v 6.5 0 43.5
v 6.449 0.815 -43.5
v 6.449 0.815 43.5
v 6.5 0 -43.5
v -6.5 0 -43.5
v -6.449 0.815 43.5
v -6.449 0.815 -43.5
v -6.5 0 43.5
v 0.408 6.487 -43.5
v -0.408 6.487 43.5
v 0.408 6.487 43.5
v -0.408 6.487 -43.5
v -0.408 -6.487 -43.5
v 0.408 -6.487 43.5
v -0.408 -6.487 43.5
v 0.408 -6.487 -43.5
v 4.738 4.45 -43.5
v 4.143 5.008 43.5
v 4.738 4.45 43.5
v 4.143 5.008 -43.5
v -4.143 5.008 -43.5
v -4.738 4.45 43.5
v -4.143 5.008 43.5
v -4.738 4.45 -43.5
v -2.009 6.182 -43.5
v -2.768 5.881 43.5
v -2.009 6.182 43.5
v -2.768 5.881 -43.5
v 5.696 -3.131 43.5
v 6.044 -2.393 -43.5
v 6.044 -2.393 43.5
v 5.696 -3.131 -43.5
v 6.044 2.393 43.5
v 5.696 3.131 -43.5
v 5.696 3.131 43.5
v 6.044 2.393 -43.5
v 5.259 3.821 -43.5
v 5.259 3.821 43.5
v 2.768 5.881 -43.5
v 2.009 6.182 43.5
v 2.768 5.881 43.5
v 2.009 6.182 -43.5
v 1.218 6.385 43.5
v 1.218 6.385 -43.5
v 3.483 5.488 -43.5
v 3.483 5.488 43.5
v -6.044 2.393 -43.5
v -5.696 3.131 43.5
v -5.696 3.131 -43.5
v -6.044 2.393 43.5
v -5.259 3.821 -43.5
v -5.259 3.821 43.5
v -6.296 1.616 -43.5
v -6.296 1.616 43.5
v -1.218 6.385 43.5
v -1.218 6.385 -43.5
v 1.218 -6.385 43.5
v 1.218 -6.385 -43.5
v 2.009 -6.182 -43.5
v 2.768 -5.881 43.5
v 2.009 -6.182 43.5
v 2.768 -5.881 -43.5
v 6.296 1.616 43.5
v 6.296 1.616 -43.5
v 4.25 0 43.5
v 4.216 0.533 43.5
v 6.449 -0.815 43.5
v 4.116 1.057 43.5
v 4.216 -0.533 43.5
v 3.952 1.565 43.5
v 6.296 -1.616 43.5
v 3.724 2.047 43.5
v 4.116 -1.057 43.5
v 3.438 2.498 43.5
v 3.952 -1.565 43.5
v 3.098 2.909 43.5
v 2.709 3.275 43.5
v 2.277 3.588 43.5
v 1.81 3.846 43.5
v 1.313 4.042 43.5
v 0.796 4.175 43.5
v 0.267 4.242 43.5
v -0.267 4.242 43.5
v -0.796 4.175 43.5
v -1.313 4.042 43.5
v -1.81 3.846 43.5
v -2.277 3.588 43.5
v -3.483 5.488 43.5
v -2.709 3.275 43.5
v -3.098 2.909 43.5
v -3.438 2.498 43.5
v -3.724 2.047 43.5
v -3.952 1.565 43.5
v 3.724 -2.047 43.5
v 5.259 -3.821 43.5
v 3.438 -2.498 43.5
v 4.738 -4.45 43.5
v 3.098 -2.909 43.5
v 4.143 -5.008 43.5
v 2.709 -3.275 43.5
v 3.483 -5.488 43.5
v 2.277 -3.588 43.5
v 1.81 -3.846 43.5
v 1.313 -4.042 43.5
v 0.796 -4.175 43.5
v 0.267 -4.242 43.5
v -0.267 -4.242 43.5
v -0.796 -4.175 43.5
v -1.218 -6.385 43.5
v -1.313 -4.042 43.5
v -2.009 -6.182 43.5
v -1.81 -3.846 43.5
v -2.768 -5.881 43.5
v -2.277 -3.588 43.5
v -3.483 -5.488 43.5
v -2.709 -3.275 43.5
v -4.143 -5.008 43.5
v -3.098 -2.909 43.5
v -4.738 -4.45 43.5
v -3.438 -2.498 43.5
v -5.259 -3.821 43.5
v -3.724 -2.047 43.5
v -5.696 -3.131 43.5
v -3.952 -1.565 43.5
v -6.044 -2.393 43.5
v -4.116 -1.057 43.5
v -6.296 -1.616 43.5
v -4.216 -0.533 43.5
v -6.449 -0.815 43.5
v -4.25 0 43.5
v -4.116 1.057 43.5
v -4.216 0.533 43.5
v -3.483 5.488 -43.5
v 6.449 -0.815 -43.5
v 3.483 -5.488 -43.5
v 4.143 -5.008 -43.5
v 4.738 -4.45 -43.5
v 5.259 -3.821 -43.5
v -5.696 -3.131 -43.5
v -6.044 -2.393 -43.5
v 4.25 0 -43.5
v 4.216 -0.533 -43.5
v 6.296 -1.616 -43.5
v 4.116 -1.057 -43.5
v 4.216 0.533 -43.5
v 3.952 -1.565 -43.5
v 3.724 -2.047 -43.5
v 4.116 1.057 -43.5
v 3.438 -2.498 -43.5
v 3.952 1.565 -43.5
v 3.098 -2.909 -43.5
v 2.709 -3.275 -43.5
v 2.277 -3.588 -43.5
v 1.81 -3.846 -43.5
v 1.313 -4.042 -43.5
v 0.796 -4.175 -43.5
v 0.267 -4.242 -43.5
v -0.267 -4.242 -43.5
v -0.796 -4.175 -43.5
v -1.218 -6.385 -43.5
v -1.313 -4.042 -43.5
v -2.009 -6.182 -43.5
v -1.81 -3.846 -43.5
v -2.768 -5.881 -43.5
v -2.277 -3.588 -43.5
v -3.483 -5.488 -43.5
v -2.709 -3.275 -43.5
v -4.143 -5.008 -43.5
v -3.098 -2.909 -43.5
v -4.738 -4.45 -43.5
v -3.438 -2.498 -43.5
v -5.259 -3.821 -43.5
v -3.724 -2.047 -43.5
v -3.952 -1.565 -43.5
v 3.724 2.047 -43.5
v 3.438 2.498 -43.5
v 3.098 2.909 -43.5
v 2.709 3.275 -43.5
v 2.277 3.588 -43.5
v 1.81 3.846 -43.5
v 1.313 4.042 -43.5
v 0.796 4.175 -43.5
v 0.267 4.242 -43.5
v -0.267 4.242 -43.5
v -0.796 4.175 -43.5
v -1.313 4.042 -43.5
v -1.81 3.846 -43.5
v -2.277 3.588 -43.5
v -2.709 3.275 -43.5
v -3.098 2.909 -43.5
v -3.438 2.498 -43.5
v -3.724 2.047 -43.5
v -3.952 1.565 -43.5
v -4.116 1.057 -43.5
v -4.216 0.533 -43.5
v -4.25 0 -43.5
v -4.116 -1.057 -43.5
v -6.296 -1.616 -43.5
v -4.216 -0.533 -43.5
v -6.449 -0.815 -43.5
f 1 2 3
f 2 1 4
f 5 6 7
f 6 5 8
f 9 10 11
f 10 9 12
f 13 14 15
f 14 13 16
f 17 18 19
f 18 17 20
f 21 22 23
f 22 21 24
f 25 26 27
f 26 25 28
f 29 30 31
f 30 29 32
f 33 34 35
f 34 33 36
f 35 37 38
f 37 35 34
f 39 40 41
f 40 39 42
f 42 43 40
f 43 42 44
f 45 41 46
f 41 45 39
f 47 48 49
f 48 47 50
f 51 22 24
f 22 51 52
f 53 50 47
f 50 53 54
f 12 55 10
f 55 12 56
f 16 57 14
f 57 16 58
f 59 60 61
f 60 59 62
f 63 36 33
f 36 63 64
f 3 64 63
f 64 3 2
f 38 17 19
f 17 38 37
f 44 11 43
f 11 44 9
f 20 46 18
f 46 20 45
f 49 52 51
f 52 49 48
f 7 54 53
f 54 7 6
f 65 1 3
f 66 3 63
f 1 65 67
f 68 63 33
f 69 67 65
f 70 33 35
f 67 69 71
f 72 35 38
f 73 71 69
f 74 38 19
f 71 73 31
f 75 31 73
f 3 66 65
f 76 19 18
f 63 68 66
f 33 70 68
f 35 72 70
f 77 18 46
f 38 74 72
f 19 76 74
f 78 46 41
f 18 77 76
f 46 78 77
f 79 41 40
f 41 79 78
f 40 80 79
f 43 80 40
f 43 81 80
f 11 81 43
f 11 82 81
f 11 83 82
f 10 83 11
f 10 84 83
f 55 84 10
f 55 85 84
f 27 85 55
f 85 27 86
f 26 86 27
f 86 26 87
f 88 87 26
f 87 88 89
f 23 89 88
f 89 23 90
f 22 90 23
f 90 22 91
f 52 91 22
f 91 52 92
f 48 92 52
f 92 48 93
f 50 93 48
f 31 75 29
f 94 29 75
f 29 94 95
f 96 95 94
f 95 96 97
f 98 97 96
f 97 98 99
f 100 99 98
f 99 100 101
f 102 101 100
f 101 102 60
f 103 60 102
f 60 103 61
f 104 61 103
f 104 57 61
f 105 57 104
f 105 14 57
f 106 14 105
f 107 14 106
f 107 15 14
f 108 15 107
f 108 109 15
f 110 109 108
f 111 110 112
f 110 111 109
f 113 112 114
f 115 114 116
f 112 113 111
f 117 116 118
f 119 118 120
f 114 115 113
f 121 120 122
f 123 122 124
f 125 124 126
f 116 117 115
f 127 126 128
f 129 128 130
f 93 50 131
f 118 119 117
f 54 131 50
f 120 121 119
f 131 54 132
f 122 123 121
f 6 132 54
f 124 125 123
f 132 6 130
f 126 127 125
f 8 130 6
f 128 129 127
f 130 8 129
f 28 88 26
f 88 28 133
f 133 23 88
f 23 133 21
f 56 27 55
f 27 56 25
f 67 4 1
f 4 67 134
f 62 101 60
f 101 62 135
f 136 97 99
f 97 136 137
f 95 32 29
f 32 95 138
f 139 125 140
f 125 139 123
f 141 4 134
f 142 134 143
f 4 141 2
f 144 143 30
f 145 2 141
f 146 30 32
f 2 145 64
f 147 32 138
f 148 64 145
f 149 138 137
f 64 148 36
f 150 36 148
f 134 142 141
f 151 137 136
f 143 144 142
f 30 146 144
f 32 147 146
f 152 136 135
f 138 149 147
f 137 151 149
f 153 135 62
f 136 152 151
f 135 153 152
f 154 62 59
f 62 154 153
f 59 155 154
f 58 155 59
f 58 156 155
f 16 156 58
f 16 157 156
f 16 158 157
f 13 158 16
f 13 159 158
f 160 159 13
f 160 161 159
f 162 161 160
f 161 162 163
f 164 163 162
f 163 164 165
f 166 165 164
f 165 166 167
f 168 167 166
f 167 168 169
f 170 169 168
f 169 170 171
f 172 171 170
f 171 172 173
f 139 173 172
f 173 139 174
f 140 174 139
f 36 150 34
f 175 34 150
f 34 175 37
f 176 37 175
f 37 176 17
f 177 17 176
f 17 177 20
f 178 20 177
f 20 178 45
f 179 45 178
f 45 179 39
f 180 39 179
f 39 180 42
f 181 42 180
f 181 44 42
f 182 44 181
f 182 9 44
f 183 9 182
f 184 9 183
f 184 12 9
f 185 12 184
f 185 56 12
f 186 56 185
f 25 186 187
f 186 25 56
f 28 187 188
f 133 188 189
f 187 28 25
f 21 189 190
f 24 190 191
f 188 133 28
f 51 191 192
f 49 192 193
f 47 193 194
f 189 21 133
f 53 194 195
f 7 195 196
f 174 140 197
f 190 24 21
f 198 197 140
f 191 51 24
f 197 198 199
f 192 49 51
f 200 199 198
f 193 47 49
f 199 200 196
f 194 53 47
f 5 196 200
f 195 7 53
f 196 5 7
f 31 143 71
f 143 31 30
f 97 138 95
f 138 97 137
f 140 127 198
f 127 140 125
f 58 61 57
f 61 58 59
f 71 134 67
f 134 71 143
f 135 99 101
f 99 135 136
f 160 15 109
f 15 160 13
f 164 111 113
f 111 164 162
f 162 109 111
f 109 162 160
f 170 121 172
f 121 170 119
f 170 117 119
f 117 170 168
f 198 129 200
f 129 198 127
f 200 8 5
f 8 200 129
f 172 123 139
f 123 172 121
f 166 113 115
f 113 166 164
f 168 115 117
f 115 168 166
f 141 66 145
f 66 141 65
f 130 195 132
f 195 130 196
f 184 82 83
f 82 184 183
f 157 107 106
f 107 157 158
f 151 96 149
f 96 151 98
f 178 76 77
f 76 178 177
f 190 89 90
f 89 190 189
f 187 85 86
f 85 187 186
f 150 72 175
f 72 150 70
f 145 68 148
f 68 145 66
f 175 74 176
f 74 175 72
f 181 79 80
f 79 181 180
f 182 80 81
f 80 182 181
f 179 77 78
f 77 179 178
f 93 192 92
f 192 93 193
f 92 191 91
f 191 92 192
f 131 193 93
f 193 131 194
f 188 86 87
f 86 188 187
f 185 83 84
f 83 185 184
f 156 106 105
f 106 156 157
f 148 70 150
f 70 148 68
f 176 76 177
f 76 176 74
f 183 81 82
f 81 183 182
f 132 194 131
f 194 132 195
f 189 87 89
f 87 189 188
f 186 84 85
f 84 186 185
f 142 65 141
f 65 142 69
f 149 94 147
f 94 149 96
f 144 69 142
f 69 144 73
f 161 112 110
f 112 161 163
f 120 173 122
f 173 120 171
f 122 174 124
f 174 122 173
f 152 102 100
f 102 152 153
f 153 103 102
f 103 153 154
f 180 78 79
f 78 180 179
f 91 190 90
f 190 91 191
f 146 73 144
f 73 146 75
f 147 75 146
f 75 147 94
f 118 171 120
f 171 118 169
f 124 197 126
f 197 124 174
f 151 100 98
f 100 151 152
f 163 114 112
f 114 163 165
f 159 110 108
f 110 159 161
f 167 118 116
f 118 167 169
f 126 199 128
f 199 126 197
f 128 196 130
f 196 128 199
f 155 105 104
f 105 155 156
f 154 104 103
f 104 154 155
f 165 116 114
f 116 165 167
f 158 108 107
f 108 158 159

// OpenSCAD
$fn = 50;


difference() {
	union() {
		translate(v = [0, 0, -43.5000000000]) {
			cylinder(h = 87, r = 6.5000000000);
		}
	}
	union() {
		translate(v = [0, 0, -100.0000000000]) {
			cylinder(h = 200, r = 4.2500000000);
		}
	}
}
